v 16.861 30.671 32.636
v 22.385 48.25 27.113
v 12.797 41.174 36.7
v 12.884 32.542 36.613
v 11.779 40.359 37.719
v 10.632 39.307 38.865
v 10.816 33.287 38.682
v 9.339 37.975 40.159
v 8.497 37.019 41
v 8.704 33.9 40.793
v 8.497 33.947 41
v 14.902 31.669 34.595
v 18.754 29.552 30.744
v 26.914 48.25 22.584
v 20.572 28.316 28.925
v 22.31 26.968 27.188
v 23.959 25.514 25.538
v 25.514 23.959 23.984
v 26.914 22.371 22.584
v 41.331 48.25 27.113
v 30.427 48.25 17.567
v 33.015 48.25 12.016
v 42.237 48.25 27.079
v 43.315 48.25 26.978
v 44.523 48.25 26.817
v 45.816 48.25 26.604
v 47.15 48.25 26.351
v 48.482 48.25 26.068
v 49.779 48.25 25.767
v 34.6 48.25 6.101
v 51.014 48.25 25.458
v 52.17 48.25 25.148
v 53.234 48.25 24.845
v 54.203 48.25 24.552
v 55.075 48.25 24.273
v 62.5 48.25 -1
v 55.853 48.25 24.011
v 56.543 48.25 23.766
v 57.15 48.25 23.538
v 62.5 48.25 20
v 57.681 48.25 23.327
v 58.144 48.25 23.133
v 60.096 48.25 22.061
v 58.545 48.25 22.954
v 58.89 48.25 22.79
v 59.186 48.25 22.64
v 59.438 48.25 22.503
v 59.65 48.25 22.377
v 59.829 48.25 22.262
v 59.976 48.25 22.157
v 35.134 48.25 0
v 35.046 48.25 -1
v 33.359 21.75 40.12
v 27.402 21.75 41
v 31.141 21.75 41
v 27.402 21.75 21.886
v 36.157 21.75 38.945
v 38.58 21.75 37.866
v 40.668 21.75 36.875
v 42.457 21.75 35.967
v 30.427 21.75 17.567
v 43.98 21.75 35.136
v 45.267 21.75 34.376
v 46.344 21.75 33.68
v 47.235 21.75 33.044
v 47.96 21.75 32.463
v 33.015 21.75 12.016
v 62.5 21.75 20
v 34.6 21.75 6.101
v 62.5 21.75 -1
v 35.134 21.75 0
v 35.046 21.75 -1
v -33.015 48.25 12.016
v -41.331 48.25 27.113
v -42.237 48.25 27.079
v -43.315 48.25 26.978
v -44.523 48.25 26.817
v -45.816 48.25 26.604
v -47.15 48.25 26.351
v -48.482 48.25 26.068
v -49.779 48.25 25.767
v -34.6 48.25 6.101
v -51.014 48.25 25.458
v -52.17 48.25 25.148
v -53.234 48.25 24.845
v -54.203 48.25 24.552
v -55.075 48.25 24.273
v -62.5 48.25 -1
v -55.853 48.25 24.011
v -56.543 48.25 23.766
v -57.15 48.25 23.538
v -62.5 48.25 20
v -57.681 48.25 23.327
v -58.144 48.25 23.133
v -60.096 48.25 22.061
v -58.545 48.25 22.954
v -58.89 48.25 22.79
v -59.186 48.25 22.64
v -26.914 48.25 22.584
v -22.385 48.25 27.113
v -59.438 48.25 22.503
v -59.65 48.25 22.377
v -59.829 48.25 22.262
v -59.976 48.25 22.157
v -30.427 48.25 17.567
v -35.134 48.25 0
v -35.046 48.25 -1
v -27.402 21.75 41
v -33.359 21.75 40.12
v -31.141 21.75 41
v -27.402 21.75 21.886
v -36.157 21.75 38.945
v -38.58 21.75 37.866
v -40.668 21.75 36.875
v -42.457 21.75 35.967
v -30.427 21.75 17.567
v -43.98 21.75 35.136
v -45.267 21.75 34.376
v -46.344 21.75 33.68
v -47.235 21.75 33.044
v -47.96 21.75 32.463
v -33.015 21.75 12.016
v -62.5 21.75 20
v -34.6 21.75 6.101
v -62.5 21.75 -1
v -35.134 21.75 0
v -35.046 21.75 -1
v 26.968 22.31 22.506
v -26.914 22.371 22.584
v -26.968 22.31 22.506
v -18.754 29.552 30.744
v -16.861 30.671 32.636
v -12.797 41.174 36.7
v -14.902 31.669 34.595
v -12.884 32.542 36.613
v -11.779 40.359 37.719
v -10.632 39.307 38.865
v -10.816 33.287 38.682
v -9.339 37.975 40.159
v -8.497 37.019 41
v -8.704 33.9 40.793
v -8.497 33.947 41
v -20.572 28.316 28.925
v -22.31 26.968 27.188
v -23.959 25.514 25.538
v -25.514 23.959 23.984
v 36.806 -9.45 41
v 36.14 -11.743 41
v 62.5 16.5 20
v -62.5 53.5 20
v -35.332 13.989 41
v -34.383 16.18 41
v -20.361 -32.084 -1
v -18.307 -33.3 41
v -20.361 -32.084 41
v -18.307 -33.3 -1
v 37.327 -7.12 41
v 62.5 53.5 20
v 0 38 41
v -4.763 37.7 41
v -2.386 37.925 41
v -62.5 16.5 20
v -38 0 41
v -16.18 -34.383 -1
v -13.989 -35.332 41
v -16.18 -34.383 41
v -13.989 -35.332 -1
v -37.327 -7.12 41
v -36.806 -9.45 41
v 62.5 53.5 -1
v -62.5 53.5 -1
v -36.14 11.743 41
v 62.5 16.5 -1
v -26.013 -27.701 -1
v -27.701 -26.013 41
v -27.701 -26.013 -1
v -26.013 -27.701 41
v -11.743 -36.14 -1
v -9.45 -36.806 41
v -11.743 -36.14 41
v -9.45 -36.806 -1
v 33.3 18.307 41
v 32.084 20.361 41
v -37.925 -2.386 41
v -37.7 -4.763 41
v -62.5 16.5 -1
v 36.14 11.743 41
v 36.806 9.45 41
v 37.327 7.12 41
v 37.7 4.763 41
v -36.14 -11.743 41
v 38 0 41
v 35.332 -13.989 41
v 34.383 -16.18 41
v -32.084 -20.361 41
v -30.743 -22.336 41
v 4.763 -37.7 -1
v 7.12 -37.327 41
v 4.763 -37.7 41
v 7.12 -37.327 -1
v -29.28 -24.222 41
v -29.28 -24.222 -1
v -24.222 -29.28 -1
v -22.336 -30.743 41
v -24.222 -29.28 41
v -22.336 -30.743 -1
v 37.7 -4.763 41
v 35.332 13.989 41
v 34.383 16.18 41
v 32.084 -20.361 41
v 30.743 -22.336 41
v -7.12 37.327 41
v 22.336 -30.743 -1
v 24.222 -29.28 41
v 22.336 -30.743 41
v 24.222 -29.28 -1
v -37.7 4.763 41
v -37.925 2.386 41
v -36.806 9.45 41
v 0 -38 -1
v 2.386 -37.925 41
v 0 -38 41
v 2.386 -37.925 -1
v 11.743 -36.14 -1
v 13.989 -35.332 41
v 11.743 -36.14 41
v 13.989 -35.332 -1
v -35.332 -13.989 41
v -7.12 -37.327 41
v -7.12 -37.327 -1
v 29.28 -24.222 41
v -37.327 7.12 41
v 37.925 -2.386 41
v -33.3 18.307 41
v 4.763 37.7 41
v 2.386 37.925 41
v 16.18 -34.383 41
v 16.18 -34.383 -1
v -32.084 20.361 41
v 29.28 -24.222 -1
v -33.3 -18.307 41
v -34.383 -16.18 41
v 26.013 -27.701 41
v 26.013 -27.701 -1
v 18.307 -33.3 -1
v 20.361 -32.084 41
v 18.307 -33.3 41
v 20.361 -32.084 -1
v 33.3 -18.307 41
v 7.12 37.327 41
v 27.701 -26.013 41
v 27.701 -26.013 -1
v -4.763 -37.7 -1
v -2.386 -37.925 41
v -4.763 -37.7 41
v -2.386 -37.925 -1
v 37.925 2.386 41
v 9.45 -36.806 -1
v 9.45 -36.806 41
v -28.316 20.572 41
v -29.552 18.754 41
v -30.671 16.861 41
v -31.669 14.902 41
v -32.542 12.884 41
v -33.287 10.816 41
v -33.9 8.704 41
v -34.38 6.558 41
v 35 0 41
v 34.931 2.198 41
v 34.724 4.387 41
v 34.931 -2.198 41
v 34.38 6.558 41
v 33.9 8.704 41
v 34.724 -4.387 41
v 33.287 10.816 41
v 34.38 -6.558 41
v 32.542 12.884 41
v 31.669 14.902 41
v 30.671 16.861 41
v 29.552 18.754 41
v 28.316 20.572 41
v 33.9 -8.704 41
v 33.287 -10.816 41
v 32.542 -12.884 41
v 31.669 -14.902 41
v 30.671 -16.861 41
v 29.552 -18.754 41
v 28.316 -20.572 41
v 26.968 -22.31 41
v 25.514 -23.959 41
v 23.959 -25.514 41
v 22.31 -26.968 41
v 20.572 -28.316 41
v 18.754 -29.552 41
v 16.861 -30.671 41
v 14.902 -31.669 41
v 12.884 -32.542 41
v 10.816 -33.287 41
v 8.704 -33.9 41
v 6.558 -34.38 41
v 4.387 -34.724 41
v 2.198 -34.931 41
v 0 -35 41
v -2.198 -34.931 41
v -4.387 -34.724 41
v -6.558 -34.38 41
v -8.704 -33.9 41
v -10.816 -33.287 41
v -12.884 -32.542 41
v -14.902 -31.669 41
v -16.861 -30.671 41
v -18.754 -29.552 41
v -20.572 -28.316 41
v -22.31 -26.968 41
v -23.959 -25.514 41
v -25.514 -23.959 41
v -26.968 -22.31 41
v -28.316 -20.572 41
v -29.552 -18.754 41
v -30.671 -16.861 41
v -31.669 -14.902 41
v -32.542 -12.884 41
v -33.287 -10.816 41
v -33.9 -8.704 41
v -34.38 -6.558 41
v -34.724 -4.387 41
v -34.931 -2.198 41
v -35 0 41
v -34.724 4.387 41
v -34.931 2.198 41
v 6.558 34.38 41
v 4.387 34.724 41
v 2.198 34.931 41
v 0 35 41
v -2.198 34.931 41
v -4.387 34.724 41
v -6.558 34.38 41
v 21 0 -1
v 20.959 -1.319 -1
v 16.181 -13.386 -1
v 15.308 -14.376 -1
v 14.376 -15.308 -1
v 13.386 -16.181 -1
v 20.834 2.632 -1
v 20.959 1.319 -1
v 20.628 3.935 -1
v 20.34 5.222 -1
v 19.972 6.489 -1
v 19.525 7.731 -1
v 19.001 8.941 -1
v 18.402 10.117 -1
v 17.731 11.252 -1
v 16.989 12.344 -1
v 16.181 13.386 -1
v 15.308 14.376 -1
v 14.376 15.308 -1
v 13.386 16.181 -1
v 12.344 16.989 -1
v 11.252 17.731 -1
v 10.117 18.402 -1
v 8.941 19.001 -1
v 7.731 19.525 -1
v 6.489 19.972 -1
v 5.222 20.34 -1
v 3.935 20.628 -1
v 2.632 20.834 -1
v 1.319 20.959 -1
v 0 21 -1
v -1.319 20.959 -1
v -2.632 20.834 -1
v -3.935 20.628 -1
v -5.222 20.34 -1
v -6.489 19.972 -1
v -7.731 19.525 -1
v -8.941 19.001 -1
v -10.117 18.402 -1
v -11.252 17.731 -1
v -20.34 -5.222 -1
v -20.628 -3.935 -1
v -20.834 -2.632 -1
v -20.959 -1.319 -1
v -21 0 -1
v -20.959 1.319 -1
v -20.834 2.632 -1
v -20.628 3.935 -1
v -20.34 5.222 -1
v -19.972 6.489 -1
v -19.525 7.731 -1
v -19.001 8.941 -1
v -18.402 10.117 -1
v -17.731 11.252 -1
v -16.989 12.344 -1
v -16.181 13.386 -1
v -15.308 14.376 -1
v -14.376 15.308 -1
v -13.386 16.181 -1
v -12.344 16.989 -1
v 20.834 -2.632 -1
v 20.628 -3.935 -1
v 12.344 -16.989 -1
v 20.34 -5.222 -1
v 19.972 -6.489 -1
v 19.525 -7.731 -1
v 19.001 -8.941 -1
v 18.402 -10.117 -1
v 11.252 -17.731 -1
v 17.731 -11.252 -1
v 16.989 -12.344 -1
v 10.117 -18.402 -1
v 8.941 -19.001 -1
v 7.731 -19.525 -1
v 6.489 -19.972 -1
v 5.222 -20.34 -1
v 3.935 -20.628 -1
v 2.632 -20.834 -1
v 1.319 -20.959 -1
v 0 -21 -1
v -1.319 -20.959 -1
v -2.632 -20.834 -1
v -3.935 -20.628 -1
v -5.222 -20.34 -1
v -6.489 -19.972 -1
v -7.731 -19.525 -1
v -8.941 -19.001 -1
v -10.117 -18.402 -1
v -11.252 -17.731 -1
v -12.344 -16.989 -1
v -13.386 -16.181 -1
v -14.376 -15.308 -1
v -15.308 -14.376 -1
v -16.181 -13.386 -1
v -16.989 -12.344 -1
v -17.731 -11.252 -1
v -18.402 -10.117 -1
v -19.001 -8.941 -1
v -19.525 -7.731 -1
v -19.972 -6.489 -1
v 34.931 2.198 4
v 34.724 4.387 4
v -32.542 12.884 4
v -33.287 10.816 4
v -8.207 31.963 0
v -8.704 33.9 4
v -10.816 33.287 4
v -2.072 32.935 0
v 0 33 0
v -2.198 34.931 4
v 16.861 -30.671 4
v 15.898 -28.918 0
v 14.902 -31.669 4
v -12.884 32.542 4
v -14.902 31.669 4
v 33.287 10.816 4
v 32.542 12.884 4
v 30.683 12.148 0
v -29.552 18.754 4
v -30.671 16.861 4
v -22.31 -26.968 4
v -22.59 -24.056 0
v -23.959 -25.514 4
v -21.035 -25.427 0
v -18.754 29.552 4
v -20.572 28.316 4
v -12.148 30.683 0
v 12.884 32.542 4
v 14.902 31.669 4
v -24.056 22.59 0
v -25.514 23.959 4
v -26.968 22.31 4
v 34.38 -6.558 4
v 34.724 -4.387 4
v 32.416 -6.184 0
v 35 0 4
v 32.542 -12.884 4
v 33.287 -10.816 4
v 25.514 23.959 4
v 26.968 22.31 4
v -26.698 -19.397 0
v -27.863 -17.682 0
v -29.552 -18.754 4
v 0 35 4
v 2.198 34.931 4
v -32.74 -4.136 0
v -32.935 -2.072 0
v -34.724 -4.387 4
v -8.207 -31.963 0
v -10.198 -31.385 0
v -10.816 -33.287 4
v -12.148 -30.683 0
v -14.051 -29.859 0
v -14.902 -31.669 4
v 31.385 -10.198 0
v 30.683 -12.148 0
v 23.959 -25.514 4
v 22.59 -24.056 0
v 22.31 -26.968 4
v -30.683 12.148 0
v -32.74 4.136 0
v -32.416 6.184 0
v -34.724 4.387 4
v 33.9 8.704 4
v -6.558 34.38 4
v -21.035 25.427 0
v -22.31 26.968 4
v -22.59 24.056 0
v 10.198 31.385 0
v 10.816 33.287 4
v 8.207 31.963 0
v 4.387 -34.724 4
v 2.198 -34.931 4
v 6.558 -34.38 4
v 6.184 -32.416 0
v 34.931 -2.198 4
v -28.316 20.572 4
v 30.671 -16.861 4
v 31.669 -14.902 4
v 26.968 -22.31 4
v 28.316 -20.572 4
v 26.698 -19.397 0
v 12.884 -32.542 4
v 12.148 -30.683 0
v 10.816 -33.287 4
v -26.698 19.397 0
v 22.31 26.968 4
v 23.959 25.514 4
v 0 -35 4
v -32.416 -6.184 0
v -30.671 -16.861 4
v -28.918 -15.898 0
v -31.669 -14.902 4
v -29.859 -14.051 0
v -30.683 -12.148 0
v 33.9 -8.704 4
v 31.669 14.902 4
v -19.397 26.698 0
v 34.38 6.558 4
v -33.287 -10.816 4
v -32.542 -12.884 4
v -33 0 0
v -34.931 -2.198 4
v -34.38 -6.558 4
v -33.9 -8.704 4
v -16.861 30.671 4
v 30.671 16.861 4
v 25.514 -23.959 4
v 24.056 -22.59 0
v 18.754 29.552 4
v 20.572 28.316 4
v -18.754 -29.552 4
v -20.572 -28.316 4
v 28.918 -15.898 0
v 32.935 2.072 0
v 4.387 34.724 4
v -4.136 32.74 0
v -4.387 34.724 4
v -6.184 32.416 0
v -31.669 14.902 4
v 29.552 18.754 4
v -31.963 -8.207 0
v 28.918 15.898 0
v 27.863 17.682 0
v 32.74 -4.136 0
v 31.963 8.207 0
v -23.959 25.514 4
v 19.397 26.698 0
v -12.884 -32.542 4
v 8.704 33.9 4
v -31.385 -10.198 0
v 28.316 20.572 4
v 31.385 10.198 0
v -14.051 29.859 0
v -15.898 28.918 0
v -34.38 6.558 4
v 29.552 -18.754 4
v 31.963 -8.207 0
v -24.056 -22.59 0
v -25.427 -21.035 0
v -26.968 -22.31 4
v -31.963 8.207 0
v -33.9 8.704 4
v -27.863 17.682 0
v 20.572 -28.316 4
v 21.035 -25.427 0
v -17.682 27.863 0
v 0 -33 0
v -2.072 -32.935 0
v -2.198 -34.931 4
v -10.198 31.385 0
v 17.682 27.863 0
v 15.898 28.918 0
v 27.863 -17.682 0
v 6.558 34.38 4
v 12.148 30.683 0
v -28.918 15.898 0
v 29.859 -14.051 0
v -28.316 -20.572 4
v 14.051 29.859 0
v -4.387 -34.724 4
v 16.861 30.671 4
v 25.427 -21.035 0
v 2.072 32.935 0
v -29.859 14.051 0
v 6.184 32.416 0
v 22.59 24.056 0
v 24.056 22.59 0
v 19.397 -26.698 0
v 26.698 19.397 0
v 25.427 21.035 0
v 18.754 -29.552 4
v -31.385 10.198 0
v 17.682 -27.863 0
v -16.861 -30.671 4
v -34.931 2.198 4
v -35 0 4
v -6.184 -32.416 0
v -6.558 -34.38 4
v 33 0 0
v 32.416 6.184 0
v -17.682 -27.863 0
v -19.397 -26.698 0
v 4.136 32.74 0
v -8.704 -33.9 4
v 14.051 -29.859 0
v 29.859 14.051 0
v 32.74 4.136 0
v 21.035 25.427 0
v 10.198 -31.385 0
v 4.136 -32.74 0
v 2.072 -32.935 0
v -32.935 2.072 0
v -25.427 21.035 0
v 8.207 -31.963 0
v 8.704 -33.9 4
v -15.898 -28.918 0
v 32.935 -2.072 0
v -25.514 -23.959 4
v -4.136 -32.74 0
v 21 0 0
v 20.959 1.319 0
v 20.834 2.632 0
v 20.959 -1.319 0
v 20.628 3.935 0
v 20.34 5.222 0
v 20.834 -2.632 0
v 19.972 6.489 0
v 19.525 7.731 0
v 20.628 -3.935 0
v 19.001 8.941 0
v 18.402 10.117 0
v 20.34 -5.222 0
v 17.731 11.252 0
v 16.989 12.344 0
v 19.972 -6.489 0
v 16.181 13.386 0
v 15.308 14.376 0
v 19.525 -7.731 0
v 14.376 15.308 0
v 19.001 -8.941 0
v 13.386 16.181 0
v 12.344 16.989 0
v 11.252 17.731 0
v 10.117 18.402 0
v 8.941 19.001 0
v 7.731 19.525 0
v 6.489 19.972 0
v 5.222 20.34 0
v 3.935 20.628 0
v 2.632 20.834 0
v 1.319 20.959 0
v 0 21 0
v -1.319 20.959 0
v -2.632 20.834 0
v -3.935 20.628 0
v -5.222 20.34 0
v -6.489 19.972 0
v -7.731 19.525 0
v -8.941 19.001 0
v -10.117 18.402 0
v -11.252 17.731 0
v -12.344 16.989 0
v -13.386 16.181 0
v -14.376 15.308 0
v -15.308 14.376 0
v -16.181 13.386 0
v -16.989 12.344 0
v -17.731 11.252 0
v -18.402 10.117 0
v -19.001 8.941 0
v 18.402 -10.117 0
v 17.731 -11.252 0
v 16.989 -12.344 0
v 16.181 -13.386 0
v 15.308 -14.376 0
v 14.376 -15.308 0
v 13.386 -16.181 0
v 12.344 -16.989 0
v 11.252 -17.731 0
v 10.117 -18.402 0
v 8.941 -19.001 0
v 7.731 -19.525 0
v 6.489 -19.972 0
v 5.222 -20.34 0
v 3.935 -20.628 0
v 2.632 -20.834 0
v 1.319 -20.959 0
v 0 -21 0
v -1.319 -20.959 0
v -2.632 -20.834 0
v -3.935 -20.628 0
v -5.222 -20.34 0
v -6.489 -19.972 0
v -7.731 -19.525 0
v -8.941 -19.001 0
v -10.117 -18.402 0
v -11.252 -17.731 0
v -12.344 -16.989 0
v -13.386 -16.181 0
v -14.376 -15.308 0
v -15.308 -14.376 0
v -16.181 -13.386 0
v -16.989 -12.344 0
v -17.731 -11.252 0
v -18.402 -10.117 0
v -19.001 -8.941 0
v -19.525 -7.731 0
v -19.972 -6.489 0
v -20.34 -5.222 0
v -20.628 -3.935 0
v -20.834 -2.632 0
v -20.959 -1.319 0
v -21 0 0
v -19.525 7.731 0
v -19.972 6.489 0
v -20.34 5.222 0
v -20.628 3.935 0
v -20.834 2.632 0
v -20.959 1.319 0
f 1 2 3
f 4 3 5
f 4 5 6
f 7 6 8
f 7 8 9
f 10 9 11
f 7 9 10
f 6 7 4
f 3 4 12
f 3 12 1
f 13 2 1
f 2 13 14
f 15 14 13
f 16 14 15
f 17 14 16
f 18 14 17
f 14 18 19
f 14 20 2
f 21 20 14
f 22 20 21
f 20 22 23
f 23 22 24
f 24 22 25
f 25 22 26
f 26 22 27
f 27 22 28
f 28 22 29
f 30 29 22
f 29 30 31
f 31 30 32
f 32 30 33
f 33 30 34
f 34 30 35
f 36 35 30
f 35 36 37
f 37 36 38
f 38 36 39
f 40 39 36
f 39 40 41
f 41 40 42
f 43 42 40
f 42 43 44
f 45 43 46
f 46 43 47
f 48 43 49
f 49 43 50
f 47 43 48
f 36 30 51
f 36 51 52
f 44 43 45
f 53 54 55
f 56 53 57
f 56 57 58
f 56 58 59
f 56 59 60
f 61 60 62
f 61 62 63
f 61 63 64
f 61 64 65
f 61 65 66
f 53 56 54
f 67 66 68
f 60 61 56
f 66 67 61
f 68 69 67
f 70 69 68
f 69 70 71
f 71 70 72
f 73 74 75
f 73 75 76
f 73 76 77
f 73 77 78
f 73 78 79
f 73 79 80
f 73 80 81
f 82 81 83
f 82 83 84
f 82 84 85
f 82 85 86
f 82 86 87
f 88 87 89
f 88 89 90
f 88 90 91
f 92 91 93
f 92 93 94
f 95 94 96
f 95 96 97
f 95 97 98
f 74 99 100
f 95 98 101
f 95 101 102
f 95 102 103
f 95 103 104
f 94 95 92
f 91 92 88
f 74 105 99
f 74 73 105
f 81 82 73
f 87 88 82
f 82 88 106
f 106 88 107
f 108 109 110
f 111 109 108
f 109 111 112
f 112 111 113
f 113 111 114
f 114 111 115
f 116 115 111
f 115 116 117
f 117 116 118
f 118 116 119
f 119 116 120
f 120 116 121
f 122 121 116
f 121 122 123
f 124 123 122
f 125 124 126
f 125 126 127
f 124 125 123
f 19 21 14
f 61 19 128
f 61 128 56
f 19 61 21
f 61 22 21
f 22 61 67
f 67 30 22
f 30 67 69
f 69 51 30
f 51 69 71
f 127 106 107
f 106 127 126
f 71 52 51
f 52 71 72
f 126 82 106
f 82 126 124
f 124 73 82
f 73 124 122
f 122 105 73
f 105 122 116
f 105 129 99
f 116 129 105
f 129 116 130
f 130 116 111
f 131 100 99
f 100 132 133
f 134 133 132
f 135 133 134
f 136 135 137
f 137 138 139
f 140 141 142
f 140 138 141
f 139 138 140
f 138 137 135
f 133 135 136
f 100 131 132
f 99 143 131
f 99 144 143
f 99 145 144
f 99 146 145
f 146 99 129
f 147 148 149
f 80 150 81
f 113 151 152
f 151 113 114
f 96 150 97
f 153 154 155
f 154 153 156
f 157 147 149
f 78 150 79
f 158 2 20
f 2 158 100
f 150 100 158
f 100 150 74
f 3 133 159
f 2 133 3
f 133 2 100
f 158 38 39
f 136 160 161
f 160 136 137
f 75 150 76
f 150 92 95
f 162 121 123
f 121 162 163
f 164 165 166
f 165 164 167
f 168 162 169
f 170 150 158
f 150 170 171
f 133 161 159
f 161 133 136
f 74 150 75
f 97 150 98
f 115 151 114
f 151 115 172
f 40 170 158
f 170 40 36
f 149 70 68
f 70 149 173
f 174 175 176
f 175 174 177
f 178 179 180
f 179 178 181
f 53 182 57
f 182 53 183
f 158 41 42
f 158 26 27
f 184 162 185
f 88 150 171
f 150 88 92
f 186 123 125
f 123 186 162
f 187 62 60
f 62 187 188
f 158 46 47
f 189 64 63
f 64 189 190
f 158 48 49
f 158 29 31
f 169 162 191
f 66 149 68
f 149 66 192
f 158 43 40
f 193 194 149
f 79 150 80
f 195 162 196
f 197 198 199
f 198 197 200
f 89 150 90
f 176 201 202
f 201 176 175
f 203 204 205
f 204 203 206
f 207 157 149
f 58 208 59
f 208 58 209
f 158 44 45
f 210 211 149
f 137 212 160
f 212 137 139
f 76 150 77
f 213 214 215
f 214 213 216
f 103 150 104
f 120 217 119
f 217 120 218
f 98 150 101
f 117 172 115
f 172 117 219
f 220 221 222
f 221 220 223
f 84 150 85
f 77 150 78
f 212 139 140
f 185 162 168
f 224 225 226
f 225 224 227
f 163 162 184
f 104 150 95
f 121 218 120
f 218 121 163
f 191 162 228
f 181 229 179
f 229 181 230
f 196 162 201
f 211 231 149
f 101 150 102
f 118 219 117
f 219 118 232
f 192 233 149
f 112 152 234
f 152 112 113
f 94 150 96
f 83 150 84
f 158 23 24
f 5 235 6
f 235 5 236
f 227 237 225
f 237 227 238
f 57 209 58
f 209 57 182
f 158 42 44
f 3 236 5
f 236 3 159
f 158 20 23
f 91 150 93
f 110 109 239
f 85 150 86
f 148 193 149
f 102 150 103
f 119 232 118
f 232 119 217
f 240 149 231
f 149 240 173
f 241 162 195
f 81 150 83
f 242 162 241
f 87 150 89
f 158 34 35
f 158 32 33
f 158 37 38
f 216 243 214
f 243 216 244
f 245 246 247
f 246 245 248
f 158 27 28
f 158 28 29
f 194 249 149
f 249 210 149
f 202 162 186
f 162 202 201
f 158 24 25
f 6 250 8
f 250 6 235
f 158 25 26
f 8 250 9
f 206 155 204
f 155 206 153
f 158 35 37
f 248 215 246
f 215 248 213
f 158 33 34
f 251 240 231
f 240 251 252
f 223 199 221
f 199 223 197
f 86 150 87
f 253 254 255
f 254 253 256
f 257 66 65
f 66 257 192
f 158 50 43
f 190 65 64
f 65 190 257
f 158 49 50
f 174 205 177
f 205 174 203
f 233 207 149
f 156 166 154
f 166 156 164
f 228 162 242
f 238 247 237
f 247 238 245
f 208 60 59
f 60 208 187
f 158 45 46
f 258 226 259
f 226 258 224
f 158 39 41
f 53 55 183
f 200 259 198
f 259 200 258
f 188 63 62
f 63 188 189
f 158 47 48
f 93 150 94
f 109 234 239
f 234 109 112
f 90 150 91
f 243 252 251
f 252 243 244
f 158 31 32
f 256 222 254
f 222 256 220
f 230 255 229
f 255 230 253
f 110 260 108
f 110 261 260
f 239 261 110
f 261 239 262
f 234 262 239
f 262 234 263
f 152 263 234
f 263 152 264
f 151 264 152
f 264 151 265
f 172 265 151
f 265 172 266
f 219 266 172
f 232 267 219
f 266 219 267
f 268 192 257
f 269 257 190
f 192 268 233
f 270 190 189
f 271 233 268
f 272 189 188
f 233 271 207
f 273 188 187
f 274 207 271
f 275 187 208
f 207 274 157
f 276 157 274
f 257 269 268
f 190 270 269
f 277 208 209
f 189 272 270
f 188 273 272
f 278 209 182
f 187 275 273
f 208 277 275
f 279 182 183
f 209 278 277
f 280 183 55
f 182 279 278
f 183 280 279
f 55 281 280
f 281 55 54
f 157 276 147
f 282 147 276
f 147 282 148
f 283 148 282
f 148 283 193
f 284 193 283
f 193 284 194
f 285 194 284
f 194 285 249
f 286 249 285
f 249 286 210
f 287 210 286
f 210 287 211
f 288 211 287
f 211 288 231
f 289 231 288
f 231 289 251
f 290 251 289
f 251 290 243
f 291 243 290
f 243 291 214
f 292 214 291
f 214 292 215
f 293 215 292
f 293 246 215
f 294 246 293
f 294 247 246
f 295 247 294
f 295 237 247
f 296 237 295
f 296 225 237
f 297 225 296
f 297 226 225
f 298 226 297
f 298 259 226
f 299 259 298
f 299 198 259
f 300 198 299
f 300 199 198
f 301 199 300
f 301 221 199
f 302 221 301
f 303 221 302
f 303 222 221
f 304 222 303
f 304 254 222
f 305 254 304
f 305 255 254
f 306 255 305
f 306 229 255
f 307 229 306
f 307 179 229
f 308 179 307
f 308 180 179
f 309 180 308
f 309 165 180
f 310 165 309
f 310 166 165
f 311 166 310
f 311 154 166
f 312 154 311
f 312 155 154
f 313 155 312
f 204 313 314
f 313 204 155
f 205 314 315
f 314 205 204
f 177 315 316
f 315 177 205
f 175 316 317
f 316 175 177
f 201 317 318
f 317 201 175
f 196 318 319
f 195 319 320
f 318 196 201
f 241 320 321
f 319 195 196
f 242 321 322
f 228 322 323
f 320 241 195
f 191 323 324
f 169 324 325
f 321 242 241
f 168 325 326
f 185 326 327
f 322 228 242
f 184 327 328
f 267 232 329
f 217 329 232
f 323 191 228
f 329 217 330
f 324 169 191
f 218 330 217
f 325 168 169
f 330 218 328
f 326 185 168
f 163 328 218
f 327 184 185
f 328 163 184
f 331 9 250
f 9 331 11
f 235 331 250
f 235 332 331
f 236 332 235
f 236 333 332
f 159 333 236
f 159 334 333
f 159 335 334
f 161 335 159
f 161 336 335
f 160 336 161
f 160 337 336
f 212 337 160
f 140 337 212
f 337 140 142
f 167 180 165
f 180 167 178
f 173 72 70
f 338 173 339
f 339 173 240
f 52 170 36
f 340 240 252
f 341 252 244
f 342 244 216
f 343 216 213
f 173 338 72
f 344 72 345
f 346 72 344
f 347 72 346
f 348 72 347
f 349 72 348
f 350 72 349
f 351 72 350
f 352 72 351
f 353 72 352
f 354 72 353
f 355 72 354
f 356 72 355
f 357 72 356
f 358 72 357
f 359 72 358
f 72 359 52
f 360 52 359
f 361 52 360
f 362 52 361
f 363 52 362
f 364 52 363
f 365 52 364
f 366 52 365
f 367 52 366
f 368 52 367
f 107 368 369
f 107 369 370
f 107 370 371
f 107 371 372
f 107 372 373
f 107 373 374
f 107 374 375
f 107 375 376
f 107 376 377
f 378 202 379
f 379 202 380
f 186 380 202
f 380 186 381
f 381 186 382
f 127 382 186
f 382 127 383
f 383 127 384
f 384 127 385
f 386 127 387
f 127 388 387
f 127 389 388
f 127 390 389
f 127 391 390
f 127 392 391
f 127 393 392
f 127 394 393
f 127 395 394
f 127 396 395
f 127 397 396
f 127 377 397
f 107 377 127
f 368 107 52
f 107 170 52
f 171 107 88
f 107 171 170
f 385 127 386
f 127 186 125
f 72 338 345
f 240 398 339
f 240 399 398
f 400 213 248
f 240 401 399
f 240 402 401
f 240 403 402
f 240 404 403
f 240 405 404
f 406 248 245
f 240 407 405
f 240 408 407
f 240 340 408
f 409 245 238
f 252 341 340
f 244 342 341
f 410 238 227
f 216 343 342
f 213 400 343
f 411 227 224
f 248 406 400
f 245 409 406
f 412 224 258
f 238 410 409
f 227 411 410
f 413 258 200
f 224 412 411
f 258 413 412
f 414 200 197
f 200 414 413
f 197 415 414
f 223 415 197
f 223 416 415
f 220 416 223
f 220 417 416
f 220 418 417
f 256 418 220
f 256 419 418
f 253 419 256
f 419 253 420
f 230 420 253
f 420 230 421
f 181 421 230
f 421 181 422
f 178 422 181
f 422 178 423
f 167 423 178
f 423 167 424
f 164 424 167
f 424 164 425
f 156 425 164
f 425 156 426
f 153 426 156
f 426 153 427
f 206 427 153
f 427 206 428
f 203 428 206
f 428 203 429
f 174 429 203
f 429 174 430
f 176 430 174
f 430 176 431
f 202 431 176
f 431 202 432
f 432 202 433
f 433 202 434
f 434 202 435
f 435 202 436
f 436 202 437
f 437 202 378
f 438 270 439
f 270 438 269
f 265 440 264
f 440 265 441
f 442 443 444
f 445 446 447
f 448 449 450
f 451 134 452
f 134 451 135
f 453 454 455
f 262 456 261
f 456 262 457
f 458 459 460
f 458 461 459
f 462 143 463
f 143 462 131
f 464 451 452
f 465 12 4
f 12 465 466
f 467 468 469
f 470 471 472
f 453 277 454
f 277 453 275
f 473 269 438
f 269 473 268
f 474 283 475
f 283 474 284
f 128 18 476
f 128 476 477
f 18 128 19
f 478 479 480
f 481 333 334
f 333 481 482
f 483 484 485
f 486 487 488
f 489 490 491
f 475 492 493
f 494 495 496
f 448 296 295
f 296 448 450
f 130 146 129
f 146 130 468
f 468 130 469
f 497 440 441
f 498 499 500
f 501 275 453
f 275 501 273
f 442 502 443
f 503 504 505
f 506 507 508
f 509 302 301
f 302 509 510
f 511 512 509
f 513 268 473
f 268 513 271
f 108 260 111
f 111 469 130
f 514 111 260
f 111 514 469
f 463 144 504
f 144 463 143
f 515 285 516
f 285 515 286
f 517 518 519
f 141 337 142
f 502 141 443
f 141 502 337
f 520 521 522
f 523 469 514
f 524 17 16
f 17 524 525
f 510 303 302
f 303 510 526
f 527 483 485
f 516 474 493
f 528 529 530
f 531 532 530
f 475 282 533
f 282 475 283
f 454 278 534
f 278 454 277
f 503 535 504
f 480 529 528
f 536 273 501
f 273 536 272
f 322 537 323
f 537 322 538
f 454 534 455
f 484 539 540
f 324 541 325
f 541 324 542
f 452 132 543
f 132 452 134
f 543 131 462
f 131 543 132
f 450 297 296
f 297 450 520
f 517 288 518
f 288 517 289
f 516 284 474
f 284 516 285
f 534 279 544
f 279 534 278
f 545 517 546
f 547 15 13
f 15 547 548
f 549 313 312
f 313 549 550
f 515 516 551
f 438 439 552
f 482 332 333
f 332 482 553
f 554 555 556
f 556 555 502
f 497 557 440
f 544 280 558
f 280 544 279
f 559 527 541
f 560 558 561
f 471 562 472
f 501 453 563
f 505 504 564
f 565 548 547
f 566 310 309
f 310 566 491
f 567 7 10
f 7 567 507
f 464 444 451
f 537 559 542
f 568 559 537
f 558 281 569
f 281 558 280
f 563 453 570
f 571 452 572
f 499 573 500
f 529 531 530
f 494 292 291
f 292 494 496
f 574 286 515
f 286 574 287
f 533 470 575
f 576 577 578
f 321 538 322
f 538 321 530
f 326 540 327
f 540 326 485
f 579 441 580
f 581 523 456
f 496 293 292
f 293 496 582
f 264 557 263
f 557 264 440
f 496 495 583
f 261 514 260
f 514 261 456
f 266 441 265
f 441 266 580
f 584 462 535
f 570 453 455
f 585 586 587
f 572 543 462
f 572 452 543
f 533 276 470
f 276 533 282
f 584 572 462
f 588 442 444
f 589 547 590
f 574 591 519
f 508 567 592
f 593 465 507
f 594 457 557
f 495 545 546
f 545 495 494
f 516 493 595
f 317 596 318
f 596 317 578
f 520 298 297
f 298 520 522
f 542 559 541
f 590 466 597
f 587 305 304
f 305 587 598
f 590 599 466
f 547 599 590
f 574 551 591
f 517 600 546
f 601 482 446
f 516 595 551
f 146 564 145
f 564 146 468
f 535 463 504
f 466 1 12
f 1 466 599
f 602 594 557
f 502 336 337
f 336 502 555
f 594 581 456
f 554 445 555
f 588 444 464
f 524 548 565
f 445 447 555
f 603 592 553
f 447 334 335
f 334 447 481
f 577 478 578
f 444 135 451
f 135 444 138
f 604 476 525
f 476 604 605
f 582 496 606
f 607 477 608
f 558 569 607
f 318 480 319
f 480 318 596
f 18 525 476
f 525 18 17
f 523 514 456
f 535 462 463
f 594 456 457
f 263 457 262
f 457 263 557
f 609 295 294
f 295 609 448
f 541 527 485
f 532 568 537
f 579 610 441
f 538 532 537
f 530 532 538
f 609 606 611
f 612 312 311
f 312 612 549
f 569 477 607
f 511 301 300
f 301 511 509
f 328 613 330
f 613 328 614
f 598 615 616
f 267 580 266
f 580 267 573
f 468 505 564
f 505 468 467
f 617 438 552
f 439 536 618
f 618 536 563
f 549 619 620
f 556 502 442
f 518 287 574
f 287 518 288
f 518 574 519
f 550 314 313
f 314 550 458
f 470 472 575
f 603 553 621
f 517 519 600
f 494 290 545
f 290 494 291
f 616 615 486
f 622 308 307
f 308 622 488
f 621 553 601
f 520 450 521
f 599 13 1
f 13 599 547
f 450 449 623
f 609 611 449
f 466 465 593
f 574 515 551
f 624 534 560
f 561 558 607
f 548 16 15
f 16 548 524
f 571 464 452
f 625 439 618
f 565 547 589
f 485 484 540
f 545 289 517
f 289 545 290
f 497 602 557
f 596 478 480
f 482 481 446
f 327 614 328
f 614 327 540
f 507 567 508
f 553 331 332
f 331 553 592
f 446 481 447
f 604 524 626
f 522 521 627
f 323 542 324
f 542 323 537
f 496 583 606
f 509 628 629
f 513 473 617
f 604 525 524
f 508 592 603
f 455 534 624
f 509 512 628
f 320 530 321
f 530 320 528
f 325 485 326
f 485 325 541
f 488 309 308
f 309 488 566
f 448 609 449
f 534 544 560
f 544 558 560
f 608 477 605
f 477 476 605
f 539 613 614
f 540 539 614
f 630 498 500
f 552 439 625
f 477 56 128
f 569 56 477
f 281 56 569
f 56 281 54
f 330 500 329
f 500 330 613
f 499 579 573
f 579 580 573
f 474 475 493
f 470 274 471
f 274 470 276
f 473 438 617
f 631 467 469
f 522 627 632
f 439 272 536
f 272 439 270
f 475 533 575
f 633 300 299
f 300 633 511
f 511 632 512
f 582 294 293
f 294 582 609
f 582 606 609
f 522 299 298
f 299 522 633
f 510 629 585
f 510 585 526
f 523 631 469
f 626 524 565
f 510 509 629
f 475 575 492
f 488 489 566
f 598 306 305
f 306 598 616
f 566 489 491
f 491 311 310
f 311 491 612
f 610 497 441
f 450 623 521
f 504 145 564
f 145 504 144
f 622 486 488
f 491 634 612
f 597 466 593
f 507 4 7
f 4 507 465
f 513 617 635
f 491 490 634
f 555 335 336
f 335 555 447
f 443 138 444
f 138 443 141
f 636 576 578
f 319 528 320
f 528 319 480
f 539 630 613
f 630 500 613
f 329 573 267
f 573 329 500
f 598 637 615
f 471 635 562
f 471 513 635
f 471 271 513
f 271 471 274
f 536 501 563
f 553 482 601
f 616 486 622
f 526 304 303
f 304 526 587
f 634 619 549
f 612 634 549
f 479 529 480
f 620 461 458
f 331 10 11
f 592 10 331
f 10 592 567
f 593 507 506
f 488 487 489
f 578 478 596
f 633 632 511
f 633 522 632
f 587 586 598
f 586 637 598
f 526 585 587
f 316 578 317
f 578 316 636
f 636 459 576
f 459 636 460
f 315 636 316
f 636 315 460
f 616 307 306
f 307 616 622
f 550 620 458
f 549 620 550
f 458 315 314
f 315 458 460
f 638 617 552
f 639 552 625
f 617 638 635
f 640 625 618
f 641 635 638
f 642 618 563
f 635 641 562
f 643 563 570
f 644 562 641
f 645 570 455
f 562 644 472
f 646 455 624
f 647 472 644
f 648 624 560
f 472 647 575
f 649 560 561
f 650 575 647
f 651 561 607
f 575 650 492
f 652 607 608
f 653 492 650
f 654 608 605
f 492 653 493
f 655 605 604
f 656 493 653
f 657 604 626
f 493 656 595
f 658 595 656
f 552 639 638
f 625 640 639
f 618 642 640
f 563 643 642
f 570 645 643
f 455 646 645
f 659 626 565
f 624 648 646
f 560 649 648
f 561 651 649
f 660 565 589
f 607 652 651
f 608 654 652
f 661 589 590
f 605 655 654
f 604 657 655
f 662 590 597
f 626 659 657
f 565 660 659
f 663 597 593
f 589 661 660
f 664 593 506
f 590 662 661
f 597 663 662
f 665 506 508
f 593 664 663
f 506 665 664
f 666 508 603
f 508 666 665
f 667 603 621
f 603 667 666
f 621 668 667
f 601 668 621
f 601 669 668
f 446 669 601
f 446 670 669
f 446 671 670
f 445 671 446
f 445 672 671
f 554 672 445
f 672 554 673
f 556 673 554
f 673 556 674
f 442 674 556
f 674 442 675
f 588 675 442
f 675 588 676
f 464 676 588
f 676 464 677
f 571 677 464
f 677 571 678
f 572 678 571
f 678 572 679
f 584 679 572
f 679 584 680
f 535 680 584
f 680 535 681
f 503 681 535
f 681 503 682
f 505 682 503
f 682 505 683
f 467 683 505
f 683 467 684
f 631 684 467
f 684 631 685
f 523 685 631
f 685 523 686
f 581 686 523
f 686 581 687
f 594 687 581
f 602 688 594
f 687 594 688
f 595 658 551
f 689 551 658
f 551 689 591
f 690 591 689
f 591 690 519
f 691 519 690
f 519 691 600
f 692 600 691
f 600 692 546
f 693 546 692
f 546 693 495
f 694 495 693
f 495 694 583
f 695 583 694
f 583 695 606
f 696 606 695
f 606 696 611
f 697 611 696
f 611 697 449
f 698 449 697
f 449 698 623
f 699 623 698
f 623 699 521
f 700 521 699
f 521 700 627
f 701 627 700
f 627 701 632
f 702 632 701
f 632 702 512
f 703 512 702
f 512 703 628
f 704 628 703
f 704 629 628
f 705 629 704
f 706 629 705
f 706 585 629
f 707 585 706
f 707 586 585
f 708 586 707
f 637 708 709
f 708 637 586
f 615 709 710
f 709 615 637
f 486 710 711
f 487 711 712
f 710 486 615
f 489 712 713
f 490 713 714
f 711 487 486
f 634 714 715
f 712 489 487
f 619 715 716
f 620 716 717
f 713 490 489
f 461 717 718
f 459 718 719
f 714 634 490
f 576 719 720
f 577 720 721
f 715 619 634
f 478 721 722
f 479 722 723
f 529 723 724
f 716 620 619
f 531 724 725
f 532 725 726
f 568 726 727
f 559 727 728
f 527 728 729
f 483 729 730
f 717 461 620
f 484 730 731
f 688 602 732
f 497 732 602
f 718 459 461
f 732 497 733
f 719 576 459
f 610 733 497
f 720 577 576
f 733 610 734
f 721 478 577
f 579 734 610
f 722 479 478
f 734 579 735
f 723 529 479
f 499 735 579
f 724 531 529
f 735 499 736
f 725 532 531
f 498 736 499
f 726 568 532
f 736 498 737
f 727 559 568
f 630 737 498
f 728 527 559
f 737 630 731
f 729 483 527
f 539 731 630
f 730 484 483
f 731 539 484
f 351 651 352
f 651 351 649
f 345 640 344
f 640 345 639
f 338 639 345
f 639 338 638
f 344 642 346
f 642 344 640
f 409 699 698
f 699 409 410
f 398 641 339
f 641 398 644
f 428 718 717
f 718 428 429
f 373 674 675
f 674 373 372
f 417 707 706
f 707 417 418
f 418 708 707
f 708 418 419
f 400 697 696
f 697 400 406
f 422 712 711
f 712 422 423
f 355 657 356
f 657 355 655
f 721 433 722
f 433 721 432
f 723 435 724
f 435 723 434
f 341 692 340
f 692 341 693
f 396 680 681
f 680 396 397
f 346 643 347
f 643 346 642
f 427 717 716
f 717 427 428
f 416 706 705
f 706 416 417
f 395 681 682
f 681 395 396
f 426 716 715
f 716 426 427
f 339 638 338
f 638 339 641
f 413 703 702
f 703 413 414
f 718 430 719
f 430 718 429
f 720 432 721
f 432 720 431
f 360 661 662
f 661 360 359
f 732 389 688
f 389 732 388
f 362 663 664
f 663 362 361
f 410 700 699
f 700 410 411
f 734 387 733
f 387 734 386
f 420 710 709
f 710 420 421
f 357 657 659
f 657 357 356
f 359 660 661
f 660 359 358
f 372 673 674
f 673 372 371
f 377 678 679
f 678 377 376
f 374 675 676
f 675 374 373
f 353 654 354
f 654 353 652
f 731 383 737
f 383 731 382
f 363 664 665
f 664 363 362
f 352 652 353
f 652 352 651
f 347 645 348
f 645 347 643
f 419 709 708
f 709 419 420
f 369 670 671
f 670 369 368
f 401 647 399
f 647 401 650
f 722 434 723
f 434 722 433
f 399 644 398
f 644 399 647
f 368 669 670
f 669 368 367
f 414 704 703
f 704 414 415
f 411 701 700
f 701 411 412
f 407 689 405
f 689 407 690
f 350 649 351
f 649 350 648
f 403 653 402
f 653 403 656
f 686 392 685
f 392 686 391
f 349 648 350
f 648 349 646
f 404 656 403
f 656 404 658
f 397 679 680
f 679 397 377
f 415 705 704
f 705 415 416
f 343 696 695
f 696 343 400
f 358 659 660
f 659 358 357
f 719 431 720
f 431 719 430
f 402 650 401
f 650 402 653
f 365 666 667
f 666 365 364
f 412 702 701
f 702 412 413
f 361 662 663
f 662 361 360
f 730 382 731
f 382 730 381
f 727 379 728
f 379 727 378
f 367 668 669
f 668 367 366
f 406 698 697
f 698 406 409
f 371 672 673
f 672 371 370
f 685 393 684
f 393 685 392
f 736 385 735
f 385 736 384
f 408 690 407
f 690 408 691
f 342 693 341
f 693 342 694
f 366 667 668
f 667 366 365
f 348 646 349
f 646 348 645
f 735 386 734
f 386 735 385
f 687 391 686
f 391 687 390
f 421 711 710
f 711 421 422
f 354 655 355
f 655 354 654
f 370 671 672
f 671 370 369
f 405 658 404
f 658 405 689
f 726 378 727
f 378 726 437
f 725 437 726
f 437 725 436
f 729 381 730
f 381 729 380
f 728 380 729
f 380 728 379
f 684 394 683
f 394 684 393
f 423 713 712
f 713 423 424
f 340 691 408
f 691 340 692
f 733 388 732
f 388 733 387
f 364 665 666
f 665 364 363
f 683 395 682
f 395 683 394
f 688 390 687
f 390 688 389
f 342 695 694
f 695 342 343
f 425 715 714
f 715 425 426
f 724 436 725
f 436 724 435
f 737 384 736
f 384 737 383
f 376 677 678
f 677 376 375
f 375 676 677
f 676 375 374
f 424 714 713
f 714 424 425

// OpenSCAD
$fn = 100;

cubetolx = 5;
cubetoly = 1.5;
cubecut = 25; // 2.5cm
cubespacing = 75; // 7.5cm
cubegrip = 3; // 2cm

holderw = cubespacing+cubecut*2;
holderh = 20;

bottlew = 70; // 6.6cm
bottleholderh = 40; // 4cm

mountoffset=0;
wall = 3;

//rotate([0,45,0])
difference()
{
    hull()
    {
        translate([0,0,0-1])
        hull()
        {
            cylinder(h=holderh+1, r=bottlew/2+wall);
            translate([0,bottlew/2-mountoffset,(holderh+1)/2])
                cube([holderw, cubecut+wall*2+cubegrip*2, (holderh+1)], center = true);
        }
        cylinder(h=bottleholderh+1, r=bottlew/2+wall);
    }
    hull()
    {
        translate([0,0,4])
        cylinder(h=bottleholderh+1+1, r=bottlew/2);
        cylinder(h=0.5, r=bottlew/2-2);
    }
    
    for(deg = [-45 : 10 : +45])
    rotate([0,deg,0])
    union()
    {
        translate([cubespacing/2+cubecut/2,bottlew/2-mountoffset,(holderh+1)/2-1])
            cube([cubecut+cubetolx, cubecut+cubetoly, (holderh+3-1)+10], center = true);
        translate([-cubespacing/2-cubecut/2,bottlew/2-mountoffset,(holderh+1)/2-1])
            cube([cubecut+cubetolx, cubecut+cubetoly, (holderh+3-1)+10], center = true);
    }
    
    cylinder(h=wall, r=bottlew*0.6/2, center=true);
}


%translate([cubespacing/2+cubecut/2,bottlew/2-mountoffset,(holderh+1)/2-1])
    cube([cubecut, cubecut, (holderh+3-1)+1000], center = true);
%translate([-cubespacing/2-cubecut/2,bottlew/2-mountoffset,(holderh+1)/2-1])
    cube([cubecut, cubecut, (holderh+3-1)+1000], center = true);
